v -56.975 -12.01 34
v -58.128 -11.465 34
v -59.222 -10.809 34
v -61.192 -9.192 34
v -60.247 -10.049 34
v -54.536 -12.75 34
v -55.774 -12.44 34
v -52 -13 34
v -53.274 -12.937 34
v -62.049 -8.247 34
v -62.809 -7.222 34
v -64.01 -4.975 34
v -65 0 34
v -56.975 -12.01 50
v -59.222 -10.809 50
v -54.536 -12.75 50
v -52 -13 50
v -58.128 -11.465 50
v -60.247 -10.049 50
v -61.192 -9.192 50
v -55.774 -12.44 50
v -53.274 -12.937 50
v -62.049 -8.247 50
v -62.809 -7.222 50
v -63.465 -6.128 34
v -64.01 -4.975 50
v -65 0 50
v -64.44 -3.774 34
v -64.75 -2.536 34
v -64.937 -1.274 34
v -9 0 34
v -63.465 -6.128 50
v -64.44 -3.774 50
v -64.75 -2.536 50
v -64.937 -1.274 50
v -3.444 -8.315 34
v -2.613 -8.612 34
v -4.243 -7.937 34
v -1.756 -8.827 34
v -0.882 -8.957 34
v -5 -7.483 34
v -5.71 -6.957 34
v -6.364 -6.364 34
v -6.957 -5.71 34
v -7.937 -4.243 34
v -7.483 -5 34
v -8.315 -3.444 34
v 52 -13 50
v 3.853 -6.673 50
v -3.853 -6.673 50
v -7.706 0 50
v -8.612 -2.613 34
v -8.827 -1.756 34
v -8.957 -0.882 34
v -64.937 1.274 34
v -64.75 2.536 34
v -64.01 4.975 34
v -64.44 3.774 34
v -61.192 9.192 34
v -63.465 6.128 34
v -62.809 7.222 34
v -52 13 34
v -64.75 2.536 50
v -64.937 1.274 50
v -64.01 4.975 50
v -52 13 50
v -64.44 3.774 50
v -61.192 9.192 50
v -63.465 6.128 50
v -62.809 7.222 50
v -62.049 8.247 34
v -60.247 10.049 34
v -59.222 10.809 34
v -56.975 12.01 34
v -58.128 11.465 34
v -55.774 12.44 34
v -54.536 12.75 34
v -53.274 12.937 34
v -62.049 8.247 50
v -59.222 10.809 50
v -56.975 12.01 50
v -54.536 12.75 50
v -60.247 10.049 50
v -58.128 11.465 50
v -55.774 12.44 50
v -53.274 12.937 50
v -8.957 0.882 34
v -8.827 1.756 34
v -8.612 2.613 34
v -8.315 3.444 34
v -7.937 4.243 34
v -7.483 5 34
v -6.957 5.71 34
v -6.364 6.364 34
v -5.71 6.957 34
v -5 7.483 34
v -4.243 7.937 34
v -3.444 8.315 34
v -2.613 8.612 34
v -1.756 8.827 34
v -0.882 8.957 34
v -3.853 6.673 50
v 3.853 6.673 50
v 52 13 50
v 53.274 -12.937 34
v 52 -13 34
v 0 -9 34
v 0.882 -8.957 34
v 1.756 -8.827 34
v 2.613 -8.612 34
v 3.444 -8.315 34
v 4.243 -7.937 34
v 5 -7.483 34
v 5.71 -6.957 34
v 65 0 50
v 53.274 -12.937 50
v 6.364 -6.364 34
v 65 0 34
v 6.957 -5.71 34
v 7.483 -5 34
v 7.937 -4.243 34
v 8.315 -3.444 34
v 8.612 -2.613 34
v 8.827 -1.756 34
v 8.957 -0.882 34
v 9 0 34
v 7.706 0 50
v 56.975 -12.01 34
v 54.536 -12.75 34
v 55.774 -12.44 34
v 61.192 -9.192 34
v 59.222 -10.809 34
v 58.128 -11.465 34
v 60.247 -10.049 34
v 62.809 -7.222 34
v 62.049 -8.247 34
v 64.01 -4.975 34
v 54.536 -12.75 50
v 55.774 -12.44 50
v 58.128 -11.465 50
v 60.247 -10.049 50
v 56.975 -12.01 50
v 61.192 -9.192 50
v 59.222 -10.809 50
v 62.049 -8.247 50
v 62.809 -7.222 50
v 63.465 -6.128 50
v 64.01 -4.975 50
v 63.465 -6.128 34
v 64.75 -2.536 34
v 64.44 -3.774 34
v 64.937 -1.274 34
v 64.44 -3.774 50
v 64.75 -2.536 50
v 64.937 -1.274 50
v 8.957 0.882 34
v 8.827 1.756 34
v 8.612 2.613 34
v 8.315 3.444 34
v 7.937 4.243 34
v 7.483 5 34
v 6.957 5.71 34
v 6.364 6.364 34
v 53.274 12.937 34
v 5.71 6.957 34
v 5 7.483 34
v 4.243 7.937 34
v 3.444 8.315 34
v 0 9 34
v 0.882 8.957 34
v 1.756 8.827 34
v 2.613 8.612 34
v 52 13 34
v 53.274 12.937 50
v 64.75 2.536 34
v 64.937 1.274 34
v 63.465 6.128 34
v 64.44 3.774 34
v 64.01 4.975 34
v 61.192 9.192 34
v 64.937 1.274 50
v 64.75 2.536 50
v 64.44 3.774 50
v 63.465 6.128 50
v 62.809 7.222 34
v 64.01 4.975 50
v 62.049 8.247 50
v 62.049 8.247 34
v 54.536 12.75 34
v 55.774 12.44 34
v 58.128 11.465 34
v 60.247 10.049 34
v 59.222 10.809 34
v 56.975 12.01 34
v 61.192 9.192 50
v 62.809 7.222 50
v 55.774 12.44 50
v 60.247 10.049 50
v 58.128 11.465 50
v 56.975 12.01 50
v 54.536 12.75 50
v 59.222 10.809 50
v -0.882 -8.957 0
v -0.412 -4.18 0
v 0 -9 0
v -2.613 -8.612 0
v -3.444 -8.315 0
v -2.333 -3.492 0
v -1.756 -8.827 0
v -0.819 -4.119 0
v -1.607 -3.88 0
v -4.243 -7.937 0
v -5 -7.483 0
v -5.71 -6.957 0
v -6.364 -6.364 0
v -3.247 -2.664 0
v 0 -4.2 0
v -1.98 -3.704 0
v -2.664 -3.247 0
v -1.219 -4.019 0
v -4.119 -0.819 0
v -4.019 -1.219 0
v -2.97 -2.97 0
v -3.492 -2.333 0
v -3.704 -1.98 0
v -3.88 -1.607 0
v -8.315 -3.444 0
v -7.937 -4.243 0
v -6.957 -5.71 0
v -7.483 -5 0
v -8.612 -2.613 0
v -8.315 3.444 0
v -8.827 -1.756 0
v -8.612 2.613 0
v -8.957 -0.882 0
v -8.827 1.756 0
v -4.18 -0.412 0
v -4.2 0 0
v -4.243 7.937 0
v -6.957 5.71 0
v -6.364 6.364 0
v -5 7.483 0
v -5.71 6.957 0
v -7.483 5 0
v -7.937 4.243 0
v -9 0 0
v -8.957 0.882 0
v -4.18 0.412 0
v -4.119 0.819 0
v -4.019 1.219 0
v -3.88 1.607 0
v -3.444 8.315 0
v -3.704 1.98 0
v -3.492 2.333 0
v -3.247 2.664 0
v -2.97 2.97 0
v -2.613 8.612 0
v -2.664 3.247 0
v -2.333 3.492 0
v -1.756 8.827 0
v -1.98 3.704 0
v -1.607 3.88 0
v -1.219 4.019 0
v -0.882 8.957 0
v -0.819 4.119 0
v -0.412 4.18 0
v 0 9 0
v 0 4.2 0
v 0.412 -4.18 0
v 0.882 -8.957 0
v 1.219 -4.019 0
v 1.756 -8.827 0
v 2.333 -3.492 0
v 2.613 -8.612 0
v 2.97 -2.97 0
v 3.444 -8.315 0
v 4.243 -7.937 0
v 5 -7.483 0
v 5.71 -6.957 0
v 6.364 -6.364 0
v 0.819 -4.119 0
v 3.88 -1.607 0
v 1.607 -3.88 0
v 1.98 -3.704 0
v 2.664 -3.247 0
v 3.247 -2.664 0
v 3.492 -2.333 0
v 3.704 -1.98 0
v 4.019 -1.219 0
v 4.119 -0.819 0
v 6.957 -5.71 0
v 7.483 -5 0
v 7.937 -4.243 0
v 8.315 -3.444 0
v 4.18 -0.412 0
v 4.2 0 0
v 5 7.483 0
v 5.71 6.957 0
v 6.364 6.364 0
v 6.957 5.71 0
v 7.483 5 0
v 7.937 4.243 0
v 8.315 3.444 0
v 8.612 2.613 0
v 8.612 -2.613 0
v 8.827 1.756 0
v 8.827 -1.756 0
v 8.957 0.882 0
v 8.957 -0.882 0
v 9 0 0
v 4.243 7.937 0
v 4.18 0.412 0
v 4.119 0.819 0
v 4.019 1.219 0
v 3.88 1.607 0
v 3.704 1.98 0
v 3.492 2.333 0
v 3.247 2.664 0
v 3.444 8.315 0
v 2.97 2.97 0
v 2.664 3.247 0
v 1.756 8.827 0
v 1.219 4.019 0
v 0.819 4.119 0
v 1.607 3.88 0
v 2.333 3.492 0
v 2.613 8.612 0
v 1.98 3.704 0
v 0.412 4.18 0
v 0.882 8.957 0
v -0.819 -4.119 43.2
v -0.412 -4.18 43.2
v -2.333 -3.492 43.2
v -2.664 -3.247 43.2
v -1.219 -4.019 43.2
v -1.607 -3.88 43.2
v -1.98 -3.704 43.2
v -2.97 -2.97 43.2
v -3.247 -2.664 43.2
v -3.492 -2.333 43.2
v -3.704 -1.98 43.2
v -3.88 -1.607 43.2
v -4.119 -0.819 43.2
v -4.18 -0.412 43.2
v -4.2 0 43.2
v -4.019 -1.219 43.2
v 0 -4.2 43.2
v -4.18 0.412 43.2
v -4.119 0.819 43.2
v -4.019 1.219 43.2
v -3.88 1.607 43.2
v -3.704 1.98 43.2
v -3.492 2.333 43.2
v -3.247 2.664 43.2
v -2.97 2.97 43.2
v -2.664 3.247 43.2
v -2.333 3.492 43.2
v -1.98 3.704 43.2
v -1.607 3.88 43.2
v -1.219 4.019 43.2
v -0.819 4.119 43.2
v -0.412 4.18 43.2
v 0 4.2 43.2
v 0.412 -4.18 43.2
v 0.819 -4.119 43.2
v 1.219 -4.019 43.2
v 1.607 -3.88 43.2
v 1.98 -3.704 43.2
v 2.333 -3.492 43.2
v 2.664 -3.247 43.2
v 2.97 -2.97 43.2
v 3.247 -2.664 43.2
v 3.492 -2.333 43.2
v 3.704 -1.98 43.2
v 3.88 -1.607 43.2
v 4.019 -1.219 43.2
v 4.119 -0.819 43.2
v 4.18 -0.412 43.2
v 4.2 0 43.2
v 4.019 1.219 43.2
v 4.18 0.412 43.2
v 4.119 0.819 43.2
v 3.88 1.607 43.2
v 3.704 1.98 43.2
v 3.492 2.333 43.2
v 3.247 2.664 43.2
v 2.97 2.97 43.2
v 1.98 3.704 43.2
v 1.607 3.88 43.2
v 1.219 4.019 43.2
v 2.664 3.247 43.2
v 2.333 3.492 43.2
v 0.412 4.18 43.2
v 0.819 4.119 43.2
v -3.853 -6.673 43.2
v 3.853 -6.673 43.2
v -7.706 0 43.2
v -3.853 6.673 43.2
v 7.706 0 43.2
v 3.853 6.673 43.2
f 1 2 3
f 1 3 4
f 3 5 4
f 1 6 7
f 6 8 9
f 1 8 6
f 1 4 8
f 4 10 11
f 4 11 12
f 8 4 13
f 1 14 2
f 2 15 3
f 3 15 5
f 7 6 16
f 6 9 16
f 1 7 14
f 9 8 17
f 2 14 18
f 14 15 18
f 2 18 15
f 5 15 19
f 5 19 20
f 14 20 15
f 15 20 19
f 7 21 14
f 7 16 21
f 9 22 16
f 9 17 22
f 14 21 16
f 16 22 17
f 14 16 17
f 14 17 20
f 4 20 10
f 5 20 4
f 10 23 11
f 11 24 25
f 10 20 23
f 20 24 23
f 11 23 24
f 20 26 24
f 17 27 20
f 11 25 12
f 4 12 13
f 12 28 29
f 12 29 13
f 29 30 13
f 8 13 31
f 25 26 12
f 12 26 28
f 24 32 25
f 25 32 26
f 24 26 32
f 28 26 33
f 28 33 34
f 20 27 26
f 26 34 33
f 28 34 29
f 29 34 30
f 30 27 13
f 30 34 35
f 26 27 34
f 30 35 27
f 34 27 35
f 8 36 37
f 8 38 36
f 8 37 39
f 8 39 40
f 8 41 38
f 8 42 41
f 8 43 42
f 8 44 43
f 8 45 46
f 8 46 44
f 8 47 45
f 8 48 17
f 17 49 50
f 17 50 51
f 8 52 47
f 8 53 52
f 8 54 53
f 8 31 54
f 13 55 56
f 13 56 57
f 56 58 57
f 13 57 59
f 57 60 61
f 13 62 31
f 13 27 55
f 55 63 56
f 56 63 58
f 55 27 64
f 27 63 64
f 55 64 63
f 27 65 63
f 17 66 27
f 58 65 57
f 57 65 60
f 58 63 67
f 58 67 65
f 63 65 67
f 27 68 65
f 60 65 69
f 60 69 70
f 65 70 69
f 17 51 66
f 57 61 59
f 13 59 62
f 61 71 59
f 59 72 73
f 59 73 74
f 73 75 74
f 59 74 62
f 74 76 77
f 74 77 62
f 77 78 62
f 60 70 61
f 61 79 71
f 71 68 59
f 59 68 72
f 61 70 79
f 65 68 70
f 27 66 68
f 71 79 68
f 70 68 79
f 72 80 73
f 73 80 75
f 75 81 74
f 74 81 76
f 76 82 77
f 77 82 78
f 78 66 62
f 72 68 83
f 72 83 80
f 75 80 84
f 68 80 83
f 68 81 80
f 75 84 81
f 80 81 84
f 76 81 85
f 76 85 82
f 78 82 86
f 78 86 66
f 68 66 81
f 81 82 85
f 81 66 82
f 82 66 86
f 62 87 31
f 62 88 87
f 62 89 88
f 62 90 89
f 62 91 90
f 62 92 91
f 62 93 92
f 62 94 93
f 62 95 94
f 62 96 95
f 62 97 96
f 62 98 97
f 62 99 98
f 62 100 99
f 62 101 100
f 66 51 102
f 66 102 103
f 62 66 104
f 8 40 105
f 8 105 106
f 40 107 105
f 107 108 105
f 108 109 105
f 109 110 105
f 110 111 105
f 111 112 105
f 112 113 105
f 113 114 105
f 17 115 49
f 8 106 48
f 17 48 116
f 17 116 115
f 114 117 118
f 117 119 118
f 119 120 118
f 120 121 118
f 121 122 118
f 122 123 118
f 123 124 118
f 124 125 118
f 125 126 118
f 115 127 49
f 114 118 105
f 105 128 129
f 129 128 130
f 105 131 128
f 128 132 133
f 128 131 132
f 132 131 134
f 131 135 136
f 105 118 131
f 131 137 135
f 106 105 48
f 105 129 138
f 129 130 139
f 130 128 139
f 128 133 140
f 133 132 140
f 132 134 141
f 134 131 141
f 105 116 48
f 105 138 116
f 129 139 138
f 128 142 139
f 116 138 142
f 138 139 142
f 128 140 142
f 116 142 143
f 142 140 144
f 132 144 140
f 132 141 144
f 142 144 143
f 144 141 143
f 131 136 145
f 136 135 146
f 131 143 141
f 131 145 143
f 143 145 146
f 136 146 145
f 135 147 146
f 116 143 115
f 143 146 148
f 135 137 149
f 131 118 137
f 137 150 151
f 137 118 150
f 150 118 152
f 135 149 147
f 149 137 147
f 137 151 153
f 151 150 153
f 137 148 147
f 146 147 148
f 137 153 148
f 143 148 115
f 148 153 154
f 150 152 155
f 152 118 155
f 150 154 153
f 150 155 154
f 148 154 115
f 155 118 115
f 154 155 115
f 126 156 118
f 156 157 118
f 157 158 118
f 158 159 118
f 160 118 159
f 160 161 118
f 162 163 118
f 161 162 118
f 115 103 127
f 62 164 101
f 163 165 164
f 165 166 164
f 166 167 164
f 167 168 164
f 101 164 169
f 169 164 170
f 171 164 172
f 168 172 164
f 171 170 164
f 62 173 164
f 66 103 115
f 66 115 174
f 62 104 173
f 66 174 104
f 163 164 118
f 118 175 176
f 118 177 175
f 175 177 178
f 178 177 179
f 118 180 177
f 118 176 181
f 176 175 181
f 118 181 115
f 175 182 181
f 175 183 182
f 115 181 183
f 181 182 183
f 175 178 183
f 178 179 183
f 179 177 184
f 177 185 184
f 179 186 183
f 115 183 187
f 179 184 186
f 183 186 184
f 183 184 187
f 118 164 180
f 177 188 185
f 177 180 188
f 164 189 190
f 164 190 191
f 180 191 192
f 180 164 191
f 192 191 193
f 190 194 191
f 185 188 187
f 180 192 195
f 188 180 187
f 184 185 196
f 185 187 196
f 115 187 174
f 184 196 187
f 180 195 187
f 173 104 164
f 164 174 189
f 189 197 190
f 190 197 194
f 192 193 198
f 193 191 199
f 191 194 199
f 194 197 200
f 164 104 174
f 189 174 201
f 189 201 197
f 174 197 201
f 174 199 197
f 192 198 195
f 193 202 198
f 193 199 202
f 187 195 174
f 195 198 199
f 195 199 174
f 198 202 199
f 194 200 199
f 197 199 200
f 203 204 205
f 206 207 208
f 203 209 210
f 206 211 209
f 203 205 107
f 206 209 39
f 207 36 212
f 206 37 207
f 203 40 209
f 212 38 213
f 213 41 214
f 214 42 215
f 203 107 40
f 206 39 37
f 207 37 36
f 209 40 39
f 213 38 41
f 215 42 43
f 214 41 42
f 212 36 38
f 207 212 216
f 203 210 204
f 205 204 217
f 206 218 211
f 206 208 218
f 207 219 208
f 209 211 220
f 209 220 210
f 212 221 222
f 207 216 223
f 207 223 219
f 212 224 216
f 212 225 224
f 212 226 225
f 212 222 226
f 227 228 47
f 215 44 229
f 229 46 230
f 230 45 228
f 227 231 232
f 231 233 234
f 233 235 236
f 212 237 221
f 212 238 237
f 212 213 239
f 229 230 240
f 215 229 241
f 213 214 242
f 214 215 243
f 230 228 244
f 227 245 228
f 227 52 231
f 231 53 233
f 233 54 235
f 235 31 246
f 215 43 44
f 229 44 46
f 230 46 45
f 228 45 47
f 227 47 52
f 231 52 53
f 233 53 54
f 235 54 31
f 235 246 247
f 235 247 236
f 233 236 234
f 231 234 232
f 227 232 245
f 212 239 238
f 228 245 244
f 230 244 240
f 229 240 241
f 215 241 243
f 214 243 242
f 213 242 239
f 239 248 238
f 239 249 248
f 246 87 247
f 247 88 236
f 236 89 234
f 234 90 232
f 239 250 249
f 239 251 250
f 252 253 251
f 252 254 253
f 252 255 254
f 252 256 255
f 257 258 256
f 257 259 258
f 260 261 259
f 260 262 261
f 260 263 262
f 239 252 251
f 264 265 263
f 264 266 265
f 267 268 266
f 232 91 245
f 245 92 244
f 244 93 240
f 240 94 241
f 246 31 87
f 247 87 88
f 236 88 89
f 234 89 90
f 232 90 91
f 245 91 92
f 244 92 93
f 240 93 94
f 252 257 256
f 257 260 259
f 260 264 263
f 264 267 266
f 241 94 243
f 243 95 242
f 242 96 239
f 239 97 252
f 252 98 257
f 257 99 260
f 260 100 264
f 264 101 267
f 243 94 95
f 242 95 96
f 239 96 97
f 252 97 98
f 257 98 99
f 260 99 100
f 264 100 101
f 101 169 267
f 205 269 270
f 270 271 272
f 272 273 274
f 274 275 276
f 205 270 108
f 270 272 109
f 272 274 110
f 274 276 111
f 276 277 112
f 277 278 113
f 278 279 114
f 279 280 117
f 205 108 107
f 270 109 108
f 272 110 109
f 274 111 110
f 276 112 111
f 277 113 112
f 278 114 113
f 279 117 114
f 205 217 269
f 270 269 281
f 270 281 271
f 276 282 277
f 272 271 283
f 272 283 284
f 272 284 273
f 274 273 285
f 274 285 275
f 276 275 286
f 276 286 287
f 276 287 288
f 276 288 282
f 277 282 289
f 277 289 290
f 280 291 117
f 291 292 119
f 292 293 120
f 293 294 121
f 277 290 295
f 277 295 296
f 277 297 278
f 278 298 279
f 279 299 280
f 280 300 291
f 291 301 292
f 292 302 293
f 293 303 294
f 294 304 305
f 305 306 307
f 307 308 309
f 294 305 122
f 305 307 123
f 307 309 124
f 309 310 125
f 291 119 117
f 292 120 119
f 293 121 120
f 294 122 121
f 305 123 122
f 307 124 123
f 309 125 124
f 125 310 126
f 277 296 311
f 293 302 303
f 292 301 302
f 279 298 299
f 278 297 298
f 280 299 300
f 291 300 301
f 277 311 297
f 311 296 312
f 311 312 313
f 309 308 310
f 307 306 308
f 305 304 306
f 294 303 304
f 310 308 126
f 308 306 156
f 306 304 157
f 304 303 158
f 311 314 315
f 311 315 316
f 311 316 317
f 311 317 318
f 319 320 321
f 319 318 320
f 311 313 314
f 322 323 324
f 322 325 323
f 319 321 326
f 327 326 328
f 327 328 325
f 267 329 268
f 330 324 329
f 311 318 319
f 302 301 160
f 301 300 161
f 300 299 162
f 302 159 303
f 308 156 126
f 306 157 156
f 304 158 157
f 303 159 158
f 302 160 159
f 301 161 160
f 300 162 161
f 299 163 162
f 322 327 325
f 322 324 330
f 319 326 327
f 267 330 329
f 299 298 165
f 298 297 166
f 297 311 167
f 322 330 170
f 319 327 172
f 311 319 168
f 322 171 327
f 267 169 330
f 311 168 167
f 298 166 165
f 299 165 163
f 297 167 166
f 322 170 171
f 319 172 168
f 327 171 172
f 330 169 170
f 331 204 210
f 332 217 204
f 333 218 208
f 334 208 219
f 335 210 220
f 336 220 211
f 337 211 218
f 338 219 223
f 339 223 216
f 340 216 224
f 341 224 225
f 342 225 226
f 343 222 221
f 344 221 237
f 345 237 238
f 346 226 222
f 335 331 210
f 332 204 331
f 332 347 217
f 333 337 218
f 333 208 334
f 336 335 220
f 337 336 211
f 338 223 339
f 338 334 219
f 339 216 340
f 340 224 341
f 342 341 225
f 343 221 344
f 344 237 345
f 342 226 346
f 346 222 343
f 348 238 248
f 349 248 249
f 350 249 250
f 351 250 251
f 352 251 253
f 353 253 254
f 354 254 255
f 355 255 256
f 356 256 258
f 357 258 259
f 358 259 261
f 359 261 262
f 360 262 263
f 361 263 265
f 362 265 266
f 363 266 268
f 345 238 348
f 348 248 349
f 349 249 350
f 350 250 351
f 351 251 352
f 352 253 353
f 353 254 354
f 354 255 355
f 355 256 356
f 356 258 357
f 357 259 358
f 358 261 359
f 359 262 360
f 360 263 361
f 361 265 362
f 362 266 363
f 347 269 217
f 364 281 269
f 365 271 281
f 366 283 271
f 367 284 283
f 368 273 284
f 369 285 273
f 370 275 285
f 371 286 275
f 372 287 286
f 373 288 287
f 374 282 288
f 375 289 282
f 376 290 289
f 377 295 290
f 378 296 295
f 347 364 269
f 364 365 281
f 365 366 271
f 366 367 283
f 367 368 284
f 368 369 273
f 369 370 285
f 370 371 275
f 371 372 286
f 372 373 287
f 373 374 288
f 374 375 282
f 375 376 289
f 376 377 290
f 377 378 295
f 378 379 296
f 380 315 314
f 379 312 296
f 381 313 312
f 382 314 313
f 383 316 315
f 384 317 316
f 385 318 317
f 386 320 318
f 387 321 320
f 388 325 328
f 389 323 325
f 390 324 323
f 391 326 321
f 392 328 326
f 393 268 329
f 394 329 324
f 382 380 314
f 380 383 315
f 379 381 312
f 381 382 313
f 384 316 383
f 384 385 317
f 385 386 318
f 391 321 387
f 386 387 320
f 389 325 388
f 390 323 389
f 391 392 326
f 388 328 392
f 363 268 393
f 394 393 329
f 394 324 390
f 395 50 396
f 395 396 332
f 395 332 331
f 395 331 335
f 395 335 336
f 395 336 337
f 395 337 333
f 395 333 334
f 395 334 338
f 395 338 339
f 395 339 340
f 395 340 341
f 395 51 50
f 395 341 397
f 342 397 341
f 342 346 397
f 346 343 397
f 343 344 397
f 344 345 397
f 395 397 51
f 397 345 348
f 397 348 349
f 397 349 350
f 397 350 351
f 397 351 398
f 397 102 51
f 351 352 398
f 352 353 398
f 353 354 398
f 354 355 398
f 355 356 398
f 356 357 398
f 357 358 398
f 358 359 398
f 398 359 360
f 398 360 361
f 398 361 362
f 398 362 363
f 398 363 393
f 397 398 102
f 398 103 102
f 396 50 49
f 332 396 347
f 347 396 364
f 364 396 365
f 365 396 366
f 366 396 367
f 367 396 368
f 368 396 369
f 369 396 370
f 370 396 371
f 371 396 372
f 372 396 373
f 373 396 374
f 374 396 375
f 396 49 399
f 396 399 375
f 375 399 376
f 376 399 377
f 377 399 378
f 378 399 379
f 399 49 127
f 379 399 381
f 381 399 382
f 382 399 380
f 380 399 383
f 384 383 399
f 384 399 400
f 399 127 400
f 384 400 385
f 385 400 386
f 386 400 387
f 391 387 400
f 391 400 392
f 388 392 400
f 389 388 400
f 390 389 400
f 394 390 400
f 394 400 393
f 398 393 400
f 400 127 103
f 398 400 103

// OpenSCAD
// file: common.scad
// cablemess: shared parameters (mm). Every part includes this file.
// Change a number here and every part follows; rebuild with ../build.sh.
$fn = 64;
eps = 0.01;

// --- trays (8 cables each) ---------------------------------------------------
page_t     = 16;    // stacking pitch: one tray, floor to floor
plate_t    = 3;     // tray floor
clear_z    = 0.8;   // air gap between trays (walls stop this short of the next floor)
tray       = 176;   // trays are square; fits a 220 mm bed with room to spare
corner_r   = 12;

// --- spine ------------------------------------------------------------------
rod_d      = 8;     // M8 studding, cut to length: N * page_t + 8 (base) + ~55 (handle)
rod_fit    = 0.4;   // hole = rod_d + rod_fit
nut_af     = 13;    // M8 nut across flats
nut_t      = 6.8;   // M8 nut thickness (+ a little)
nut_fit    = 0.4;
boss_d     = 18;    // centre boss = tray spacer, carries the rod (thin: rod hole + 4.8 mm wall); cables coil round it

// --- lanes: 8 per tray, 4 each side of the spine ------------------------------
lanes_side = 4;
lane_w     = 16;    // inside width of a lane = plug pocket width. Test with the coupon.
lane_wall  = 2;     // divider between lanes
front_wall = 14;    // front face: solid, so each lane has a marker hole and a label recess
cross_y    = 134;   // cross wall: the coil lies in front of it, the plug sits behind it
back_wall  = 4;
conn_w     = lane_w;  // coupon tests this
neck_w     = 14;    // cable hole through the cross wall: a rounded rectangle, room for both strands of a cable
spine_neck_w = 22;  // same, for the wide spine lane (both plugs of a short cable sit in its pocket)
neck_h     = 9;
neck_r     = 3;     // corner radius of the hole (neck_h / 2 would be a full oval)

// --- length / colour marker (front face, one per lane) ----------------------------
pin_d      = 4;     // marker pin shaft
pin_fit    = 0.3;   // hole = pin_d + pin_fit
label_w    = 14;    // tape label recess per lane

module outline(s = tray, r = corner_r) offset(r = r) offset(delta = -r) square(s);
mid = tray / 2;
// main file
// T-handle: stem on the top tray's boss, grip bar above it, M8 nut in the pocket on top.
include <common.scad>
stem_h = 34;
bar_l = 130;
bar_w = 26;
bar_t = 16;
difference() {
  union() {
    cylinder(d = boss_d, h = stem_h);
    translate([0, 0, stem_h]) hull() {
      for (s = [-1, 1]) translate([s * (bar_l - bar_w) / 2, 0, 0]) cylinder(d = bar_w, h = bar_t);
    }
  }
  translate([0, 0, -1]) cylinder(d = rod_d + rod_fit, h = stem_h + bar_t + 2);
  translate([0, 0, stem_h + bar_t - nut_t]) cylinder(d = nut_af / cos(30) + nut_fit, h = nut_t + 1, $fn = 6);
}
